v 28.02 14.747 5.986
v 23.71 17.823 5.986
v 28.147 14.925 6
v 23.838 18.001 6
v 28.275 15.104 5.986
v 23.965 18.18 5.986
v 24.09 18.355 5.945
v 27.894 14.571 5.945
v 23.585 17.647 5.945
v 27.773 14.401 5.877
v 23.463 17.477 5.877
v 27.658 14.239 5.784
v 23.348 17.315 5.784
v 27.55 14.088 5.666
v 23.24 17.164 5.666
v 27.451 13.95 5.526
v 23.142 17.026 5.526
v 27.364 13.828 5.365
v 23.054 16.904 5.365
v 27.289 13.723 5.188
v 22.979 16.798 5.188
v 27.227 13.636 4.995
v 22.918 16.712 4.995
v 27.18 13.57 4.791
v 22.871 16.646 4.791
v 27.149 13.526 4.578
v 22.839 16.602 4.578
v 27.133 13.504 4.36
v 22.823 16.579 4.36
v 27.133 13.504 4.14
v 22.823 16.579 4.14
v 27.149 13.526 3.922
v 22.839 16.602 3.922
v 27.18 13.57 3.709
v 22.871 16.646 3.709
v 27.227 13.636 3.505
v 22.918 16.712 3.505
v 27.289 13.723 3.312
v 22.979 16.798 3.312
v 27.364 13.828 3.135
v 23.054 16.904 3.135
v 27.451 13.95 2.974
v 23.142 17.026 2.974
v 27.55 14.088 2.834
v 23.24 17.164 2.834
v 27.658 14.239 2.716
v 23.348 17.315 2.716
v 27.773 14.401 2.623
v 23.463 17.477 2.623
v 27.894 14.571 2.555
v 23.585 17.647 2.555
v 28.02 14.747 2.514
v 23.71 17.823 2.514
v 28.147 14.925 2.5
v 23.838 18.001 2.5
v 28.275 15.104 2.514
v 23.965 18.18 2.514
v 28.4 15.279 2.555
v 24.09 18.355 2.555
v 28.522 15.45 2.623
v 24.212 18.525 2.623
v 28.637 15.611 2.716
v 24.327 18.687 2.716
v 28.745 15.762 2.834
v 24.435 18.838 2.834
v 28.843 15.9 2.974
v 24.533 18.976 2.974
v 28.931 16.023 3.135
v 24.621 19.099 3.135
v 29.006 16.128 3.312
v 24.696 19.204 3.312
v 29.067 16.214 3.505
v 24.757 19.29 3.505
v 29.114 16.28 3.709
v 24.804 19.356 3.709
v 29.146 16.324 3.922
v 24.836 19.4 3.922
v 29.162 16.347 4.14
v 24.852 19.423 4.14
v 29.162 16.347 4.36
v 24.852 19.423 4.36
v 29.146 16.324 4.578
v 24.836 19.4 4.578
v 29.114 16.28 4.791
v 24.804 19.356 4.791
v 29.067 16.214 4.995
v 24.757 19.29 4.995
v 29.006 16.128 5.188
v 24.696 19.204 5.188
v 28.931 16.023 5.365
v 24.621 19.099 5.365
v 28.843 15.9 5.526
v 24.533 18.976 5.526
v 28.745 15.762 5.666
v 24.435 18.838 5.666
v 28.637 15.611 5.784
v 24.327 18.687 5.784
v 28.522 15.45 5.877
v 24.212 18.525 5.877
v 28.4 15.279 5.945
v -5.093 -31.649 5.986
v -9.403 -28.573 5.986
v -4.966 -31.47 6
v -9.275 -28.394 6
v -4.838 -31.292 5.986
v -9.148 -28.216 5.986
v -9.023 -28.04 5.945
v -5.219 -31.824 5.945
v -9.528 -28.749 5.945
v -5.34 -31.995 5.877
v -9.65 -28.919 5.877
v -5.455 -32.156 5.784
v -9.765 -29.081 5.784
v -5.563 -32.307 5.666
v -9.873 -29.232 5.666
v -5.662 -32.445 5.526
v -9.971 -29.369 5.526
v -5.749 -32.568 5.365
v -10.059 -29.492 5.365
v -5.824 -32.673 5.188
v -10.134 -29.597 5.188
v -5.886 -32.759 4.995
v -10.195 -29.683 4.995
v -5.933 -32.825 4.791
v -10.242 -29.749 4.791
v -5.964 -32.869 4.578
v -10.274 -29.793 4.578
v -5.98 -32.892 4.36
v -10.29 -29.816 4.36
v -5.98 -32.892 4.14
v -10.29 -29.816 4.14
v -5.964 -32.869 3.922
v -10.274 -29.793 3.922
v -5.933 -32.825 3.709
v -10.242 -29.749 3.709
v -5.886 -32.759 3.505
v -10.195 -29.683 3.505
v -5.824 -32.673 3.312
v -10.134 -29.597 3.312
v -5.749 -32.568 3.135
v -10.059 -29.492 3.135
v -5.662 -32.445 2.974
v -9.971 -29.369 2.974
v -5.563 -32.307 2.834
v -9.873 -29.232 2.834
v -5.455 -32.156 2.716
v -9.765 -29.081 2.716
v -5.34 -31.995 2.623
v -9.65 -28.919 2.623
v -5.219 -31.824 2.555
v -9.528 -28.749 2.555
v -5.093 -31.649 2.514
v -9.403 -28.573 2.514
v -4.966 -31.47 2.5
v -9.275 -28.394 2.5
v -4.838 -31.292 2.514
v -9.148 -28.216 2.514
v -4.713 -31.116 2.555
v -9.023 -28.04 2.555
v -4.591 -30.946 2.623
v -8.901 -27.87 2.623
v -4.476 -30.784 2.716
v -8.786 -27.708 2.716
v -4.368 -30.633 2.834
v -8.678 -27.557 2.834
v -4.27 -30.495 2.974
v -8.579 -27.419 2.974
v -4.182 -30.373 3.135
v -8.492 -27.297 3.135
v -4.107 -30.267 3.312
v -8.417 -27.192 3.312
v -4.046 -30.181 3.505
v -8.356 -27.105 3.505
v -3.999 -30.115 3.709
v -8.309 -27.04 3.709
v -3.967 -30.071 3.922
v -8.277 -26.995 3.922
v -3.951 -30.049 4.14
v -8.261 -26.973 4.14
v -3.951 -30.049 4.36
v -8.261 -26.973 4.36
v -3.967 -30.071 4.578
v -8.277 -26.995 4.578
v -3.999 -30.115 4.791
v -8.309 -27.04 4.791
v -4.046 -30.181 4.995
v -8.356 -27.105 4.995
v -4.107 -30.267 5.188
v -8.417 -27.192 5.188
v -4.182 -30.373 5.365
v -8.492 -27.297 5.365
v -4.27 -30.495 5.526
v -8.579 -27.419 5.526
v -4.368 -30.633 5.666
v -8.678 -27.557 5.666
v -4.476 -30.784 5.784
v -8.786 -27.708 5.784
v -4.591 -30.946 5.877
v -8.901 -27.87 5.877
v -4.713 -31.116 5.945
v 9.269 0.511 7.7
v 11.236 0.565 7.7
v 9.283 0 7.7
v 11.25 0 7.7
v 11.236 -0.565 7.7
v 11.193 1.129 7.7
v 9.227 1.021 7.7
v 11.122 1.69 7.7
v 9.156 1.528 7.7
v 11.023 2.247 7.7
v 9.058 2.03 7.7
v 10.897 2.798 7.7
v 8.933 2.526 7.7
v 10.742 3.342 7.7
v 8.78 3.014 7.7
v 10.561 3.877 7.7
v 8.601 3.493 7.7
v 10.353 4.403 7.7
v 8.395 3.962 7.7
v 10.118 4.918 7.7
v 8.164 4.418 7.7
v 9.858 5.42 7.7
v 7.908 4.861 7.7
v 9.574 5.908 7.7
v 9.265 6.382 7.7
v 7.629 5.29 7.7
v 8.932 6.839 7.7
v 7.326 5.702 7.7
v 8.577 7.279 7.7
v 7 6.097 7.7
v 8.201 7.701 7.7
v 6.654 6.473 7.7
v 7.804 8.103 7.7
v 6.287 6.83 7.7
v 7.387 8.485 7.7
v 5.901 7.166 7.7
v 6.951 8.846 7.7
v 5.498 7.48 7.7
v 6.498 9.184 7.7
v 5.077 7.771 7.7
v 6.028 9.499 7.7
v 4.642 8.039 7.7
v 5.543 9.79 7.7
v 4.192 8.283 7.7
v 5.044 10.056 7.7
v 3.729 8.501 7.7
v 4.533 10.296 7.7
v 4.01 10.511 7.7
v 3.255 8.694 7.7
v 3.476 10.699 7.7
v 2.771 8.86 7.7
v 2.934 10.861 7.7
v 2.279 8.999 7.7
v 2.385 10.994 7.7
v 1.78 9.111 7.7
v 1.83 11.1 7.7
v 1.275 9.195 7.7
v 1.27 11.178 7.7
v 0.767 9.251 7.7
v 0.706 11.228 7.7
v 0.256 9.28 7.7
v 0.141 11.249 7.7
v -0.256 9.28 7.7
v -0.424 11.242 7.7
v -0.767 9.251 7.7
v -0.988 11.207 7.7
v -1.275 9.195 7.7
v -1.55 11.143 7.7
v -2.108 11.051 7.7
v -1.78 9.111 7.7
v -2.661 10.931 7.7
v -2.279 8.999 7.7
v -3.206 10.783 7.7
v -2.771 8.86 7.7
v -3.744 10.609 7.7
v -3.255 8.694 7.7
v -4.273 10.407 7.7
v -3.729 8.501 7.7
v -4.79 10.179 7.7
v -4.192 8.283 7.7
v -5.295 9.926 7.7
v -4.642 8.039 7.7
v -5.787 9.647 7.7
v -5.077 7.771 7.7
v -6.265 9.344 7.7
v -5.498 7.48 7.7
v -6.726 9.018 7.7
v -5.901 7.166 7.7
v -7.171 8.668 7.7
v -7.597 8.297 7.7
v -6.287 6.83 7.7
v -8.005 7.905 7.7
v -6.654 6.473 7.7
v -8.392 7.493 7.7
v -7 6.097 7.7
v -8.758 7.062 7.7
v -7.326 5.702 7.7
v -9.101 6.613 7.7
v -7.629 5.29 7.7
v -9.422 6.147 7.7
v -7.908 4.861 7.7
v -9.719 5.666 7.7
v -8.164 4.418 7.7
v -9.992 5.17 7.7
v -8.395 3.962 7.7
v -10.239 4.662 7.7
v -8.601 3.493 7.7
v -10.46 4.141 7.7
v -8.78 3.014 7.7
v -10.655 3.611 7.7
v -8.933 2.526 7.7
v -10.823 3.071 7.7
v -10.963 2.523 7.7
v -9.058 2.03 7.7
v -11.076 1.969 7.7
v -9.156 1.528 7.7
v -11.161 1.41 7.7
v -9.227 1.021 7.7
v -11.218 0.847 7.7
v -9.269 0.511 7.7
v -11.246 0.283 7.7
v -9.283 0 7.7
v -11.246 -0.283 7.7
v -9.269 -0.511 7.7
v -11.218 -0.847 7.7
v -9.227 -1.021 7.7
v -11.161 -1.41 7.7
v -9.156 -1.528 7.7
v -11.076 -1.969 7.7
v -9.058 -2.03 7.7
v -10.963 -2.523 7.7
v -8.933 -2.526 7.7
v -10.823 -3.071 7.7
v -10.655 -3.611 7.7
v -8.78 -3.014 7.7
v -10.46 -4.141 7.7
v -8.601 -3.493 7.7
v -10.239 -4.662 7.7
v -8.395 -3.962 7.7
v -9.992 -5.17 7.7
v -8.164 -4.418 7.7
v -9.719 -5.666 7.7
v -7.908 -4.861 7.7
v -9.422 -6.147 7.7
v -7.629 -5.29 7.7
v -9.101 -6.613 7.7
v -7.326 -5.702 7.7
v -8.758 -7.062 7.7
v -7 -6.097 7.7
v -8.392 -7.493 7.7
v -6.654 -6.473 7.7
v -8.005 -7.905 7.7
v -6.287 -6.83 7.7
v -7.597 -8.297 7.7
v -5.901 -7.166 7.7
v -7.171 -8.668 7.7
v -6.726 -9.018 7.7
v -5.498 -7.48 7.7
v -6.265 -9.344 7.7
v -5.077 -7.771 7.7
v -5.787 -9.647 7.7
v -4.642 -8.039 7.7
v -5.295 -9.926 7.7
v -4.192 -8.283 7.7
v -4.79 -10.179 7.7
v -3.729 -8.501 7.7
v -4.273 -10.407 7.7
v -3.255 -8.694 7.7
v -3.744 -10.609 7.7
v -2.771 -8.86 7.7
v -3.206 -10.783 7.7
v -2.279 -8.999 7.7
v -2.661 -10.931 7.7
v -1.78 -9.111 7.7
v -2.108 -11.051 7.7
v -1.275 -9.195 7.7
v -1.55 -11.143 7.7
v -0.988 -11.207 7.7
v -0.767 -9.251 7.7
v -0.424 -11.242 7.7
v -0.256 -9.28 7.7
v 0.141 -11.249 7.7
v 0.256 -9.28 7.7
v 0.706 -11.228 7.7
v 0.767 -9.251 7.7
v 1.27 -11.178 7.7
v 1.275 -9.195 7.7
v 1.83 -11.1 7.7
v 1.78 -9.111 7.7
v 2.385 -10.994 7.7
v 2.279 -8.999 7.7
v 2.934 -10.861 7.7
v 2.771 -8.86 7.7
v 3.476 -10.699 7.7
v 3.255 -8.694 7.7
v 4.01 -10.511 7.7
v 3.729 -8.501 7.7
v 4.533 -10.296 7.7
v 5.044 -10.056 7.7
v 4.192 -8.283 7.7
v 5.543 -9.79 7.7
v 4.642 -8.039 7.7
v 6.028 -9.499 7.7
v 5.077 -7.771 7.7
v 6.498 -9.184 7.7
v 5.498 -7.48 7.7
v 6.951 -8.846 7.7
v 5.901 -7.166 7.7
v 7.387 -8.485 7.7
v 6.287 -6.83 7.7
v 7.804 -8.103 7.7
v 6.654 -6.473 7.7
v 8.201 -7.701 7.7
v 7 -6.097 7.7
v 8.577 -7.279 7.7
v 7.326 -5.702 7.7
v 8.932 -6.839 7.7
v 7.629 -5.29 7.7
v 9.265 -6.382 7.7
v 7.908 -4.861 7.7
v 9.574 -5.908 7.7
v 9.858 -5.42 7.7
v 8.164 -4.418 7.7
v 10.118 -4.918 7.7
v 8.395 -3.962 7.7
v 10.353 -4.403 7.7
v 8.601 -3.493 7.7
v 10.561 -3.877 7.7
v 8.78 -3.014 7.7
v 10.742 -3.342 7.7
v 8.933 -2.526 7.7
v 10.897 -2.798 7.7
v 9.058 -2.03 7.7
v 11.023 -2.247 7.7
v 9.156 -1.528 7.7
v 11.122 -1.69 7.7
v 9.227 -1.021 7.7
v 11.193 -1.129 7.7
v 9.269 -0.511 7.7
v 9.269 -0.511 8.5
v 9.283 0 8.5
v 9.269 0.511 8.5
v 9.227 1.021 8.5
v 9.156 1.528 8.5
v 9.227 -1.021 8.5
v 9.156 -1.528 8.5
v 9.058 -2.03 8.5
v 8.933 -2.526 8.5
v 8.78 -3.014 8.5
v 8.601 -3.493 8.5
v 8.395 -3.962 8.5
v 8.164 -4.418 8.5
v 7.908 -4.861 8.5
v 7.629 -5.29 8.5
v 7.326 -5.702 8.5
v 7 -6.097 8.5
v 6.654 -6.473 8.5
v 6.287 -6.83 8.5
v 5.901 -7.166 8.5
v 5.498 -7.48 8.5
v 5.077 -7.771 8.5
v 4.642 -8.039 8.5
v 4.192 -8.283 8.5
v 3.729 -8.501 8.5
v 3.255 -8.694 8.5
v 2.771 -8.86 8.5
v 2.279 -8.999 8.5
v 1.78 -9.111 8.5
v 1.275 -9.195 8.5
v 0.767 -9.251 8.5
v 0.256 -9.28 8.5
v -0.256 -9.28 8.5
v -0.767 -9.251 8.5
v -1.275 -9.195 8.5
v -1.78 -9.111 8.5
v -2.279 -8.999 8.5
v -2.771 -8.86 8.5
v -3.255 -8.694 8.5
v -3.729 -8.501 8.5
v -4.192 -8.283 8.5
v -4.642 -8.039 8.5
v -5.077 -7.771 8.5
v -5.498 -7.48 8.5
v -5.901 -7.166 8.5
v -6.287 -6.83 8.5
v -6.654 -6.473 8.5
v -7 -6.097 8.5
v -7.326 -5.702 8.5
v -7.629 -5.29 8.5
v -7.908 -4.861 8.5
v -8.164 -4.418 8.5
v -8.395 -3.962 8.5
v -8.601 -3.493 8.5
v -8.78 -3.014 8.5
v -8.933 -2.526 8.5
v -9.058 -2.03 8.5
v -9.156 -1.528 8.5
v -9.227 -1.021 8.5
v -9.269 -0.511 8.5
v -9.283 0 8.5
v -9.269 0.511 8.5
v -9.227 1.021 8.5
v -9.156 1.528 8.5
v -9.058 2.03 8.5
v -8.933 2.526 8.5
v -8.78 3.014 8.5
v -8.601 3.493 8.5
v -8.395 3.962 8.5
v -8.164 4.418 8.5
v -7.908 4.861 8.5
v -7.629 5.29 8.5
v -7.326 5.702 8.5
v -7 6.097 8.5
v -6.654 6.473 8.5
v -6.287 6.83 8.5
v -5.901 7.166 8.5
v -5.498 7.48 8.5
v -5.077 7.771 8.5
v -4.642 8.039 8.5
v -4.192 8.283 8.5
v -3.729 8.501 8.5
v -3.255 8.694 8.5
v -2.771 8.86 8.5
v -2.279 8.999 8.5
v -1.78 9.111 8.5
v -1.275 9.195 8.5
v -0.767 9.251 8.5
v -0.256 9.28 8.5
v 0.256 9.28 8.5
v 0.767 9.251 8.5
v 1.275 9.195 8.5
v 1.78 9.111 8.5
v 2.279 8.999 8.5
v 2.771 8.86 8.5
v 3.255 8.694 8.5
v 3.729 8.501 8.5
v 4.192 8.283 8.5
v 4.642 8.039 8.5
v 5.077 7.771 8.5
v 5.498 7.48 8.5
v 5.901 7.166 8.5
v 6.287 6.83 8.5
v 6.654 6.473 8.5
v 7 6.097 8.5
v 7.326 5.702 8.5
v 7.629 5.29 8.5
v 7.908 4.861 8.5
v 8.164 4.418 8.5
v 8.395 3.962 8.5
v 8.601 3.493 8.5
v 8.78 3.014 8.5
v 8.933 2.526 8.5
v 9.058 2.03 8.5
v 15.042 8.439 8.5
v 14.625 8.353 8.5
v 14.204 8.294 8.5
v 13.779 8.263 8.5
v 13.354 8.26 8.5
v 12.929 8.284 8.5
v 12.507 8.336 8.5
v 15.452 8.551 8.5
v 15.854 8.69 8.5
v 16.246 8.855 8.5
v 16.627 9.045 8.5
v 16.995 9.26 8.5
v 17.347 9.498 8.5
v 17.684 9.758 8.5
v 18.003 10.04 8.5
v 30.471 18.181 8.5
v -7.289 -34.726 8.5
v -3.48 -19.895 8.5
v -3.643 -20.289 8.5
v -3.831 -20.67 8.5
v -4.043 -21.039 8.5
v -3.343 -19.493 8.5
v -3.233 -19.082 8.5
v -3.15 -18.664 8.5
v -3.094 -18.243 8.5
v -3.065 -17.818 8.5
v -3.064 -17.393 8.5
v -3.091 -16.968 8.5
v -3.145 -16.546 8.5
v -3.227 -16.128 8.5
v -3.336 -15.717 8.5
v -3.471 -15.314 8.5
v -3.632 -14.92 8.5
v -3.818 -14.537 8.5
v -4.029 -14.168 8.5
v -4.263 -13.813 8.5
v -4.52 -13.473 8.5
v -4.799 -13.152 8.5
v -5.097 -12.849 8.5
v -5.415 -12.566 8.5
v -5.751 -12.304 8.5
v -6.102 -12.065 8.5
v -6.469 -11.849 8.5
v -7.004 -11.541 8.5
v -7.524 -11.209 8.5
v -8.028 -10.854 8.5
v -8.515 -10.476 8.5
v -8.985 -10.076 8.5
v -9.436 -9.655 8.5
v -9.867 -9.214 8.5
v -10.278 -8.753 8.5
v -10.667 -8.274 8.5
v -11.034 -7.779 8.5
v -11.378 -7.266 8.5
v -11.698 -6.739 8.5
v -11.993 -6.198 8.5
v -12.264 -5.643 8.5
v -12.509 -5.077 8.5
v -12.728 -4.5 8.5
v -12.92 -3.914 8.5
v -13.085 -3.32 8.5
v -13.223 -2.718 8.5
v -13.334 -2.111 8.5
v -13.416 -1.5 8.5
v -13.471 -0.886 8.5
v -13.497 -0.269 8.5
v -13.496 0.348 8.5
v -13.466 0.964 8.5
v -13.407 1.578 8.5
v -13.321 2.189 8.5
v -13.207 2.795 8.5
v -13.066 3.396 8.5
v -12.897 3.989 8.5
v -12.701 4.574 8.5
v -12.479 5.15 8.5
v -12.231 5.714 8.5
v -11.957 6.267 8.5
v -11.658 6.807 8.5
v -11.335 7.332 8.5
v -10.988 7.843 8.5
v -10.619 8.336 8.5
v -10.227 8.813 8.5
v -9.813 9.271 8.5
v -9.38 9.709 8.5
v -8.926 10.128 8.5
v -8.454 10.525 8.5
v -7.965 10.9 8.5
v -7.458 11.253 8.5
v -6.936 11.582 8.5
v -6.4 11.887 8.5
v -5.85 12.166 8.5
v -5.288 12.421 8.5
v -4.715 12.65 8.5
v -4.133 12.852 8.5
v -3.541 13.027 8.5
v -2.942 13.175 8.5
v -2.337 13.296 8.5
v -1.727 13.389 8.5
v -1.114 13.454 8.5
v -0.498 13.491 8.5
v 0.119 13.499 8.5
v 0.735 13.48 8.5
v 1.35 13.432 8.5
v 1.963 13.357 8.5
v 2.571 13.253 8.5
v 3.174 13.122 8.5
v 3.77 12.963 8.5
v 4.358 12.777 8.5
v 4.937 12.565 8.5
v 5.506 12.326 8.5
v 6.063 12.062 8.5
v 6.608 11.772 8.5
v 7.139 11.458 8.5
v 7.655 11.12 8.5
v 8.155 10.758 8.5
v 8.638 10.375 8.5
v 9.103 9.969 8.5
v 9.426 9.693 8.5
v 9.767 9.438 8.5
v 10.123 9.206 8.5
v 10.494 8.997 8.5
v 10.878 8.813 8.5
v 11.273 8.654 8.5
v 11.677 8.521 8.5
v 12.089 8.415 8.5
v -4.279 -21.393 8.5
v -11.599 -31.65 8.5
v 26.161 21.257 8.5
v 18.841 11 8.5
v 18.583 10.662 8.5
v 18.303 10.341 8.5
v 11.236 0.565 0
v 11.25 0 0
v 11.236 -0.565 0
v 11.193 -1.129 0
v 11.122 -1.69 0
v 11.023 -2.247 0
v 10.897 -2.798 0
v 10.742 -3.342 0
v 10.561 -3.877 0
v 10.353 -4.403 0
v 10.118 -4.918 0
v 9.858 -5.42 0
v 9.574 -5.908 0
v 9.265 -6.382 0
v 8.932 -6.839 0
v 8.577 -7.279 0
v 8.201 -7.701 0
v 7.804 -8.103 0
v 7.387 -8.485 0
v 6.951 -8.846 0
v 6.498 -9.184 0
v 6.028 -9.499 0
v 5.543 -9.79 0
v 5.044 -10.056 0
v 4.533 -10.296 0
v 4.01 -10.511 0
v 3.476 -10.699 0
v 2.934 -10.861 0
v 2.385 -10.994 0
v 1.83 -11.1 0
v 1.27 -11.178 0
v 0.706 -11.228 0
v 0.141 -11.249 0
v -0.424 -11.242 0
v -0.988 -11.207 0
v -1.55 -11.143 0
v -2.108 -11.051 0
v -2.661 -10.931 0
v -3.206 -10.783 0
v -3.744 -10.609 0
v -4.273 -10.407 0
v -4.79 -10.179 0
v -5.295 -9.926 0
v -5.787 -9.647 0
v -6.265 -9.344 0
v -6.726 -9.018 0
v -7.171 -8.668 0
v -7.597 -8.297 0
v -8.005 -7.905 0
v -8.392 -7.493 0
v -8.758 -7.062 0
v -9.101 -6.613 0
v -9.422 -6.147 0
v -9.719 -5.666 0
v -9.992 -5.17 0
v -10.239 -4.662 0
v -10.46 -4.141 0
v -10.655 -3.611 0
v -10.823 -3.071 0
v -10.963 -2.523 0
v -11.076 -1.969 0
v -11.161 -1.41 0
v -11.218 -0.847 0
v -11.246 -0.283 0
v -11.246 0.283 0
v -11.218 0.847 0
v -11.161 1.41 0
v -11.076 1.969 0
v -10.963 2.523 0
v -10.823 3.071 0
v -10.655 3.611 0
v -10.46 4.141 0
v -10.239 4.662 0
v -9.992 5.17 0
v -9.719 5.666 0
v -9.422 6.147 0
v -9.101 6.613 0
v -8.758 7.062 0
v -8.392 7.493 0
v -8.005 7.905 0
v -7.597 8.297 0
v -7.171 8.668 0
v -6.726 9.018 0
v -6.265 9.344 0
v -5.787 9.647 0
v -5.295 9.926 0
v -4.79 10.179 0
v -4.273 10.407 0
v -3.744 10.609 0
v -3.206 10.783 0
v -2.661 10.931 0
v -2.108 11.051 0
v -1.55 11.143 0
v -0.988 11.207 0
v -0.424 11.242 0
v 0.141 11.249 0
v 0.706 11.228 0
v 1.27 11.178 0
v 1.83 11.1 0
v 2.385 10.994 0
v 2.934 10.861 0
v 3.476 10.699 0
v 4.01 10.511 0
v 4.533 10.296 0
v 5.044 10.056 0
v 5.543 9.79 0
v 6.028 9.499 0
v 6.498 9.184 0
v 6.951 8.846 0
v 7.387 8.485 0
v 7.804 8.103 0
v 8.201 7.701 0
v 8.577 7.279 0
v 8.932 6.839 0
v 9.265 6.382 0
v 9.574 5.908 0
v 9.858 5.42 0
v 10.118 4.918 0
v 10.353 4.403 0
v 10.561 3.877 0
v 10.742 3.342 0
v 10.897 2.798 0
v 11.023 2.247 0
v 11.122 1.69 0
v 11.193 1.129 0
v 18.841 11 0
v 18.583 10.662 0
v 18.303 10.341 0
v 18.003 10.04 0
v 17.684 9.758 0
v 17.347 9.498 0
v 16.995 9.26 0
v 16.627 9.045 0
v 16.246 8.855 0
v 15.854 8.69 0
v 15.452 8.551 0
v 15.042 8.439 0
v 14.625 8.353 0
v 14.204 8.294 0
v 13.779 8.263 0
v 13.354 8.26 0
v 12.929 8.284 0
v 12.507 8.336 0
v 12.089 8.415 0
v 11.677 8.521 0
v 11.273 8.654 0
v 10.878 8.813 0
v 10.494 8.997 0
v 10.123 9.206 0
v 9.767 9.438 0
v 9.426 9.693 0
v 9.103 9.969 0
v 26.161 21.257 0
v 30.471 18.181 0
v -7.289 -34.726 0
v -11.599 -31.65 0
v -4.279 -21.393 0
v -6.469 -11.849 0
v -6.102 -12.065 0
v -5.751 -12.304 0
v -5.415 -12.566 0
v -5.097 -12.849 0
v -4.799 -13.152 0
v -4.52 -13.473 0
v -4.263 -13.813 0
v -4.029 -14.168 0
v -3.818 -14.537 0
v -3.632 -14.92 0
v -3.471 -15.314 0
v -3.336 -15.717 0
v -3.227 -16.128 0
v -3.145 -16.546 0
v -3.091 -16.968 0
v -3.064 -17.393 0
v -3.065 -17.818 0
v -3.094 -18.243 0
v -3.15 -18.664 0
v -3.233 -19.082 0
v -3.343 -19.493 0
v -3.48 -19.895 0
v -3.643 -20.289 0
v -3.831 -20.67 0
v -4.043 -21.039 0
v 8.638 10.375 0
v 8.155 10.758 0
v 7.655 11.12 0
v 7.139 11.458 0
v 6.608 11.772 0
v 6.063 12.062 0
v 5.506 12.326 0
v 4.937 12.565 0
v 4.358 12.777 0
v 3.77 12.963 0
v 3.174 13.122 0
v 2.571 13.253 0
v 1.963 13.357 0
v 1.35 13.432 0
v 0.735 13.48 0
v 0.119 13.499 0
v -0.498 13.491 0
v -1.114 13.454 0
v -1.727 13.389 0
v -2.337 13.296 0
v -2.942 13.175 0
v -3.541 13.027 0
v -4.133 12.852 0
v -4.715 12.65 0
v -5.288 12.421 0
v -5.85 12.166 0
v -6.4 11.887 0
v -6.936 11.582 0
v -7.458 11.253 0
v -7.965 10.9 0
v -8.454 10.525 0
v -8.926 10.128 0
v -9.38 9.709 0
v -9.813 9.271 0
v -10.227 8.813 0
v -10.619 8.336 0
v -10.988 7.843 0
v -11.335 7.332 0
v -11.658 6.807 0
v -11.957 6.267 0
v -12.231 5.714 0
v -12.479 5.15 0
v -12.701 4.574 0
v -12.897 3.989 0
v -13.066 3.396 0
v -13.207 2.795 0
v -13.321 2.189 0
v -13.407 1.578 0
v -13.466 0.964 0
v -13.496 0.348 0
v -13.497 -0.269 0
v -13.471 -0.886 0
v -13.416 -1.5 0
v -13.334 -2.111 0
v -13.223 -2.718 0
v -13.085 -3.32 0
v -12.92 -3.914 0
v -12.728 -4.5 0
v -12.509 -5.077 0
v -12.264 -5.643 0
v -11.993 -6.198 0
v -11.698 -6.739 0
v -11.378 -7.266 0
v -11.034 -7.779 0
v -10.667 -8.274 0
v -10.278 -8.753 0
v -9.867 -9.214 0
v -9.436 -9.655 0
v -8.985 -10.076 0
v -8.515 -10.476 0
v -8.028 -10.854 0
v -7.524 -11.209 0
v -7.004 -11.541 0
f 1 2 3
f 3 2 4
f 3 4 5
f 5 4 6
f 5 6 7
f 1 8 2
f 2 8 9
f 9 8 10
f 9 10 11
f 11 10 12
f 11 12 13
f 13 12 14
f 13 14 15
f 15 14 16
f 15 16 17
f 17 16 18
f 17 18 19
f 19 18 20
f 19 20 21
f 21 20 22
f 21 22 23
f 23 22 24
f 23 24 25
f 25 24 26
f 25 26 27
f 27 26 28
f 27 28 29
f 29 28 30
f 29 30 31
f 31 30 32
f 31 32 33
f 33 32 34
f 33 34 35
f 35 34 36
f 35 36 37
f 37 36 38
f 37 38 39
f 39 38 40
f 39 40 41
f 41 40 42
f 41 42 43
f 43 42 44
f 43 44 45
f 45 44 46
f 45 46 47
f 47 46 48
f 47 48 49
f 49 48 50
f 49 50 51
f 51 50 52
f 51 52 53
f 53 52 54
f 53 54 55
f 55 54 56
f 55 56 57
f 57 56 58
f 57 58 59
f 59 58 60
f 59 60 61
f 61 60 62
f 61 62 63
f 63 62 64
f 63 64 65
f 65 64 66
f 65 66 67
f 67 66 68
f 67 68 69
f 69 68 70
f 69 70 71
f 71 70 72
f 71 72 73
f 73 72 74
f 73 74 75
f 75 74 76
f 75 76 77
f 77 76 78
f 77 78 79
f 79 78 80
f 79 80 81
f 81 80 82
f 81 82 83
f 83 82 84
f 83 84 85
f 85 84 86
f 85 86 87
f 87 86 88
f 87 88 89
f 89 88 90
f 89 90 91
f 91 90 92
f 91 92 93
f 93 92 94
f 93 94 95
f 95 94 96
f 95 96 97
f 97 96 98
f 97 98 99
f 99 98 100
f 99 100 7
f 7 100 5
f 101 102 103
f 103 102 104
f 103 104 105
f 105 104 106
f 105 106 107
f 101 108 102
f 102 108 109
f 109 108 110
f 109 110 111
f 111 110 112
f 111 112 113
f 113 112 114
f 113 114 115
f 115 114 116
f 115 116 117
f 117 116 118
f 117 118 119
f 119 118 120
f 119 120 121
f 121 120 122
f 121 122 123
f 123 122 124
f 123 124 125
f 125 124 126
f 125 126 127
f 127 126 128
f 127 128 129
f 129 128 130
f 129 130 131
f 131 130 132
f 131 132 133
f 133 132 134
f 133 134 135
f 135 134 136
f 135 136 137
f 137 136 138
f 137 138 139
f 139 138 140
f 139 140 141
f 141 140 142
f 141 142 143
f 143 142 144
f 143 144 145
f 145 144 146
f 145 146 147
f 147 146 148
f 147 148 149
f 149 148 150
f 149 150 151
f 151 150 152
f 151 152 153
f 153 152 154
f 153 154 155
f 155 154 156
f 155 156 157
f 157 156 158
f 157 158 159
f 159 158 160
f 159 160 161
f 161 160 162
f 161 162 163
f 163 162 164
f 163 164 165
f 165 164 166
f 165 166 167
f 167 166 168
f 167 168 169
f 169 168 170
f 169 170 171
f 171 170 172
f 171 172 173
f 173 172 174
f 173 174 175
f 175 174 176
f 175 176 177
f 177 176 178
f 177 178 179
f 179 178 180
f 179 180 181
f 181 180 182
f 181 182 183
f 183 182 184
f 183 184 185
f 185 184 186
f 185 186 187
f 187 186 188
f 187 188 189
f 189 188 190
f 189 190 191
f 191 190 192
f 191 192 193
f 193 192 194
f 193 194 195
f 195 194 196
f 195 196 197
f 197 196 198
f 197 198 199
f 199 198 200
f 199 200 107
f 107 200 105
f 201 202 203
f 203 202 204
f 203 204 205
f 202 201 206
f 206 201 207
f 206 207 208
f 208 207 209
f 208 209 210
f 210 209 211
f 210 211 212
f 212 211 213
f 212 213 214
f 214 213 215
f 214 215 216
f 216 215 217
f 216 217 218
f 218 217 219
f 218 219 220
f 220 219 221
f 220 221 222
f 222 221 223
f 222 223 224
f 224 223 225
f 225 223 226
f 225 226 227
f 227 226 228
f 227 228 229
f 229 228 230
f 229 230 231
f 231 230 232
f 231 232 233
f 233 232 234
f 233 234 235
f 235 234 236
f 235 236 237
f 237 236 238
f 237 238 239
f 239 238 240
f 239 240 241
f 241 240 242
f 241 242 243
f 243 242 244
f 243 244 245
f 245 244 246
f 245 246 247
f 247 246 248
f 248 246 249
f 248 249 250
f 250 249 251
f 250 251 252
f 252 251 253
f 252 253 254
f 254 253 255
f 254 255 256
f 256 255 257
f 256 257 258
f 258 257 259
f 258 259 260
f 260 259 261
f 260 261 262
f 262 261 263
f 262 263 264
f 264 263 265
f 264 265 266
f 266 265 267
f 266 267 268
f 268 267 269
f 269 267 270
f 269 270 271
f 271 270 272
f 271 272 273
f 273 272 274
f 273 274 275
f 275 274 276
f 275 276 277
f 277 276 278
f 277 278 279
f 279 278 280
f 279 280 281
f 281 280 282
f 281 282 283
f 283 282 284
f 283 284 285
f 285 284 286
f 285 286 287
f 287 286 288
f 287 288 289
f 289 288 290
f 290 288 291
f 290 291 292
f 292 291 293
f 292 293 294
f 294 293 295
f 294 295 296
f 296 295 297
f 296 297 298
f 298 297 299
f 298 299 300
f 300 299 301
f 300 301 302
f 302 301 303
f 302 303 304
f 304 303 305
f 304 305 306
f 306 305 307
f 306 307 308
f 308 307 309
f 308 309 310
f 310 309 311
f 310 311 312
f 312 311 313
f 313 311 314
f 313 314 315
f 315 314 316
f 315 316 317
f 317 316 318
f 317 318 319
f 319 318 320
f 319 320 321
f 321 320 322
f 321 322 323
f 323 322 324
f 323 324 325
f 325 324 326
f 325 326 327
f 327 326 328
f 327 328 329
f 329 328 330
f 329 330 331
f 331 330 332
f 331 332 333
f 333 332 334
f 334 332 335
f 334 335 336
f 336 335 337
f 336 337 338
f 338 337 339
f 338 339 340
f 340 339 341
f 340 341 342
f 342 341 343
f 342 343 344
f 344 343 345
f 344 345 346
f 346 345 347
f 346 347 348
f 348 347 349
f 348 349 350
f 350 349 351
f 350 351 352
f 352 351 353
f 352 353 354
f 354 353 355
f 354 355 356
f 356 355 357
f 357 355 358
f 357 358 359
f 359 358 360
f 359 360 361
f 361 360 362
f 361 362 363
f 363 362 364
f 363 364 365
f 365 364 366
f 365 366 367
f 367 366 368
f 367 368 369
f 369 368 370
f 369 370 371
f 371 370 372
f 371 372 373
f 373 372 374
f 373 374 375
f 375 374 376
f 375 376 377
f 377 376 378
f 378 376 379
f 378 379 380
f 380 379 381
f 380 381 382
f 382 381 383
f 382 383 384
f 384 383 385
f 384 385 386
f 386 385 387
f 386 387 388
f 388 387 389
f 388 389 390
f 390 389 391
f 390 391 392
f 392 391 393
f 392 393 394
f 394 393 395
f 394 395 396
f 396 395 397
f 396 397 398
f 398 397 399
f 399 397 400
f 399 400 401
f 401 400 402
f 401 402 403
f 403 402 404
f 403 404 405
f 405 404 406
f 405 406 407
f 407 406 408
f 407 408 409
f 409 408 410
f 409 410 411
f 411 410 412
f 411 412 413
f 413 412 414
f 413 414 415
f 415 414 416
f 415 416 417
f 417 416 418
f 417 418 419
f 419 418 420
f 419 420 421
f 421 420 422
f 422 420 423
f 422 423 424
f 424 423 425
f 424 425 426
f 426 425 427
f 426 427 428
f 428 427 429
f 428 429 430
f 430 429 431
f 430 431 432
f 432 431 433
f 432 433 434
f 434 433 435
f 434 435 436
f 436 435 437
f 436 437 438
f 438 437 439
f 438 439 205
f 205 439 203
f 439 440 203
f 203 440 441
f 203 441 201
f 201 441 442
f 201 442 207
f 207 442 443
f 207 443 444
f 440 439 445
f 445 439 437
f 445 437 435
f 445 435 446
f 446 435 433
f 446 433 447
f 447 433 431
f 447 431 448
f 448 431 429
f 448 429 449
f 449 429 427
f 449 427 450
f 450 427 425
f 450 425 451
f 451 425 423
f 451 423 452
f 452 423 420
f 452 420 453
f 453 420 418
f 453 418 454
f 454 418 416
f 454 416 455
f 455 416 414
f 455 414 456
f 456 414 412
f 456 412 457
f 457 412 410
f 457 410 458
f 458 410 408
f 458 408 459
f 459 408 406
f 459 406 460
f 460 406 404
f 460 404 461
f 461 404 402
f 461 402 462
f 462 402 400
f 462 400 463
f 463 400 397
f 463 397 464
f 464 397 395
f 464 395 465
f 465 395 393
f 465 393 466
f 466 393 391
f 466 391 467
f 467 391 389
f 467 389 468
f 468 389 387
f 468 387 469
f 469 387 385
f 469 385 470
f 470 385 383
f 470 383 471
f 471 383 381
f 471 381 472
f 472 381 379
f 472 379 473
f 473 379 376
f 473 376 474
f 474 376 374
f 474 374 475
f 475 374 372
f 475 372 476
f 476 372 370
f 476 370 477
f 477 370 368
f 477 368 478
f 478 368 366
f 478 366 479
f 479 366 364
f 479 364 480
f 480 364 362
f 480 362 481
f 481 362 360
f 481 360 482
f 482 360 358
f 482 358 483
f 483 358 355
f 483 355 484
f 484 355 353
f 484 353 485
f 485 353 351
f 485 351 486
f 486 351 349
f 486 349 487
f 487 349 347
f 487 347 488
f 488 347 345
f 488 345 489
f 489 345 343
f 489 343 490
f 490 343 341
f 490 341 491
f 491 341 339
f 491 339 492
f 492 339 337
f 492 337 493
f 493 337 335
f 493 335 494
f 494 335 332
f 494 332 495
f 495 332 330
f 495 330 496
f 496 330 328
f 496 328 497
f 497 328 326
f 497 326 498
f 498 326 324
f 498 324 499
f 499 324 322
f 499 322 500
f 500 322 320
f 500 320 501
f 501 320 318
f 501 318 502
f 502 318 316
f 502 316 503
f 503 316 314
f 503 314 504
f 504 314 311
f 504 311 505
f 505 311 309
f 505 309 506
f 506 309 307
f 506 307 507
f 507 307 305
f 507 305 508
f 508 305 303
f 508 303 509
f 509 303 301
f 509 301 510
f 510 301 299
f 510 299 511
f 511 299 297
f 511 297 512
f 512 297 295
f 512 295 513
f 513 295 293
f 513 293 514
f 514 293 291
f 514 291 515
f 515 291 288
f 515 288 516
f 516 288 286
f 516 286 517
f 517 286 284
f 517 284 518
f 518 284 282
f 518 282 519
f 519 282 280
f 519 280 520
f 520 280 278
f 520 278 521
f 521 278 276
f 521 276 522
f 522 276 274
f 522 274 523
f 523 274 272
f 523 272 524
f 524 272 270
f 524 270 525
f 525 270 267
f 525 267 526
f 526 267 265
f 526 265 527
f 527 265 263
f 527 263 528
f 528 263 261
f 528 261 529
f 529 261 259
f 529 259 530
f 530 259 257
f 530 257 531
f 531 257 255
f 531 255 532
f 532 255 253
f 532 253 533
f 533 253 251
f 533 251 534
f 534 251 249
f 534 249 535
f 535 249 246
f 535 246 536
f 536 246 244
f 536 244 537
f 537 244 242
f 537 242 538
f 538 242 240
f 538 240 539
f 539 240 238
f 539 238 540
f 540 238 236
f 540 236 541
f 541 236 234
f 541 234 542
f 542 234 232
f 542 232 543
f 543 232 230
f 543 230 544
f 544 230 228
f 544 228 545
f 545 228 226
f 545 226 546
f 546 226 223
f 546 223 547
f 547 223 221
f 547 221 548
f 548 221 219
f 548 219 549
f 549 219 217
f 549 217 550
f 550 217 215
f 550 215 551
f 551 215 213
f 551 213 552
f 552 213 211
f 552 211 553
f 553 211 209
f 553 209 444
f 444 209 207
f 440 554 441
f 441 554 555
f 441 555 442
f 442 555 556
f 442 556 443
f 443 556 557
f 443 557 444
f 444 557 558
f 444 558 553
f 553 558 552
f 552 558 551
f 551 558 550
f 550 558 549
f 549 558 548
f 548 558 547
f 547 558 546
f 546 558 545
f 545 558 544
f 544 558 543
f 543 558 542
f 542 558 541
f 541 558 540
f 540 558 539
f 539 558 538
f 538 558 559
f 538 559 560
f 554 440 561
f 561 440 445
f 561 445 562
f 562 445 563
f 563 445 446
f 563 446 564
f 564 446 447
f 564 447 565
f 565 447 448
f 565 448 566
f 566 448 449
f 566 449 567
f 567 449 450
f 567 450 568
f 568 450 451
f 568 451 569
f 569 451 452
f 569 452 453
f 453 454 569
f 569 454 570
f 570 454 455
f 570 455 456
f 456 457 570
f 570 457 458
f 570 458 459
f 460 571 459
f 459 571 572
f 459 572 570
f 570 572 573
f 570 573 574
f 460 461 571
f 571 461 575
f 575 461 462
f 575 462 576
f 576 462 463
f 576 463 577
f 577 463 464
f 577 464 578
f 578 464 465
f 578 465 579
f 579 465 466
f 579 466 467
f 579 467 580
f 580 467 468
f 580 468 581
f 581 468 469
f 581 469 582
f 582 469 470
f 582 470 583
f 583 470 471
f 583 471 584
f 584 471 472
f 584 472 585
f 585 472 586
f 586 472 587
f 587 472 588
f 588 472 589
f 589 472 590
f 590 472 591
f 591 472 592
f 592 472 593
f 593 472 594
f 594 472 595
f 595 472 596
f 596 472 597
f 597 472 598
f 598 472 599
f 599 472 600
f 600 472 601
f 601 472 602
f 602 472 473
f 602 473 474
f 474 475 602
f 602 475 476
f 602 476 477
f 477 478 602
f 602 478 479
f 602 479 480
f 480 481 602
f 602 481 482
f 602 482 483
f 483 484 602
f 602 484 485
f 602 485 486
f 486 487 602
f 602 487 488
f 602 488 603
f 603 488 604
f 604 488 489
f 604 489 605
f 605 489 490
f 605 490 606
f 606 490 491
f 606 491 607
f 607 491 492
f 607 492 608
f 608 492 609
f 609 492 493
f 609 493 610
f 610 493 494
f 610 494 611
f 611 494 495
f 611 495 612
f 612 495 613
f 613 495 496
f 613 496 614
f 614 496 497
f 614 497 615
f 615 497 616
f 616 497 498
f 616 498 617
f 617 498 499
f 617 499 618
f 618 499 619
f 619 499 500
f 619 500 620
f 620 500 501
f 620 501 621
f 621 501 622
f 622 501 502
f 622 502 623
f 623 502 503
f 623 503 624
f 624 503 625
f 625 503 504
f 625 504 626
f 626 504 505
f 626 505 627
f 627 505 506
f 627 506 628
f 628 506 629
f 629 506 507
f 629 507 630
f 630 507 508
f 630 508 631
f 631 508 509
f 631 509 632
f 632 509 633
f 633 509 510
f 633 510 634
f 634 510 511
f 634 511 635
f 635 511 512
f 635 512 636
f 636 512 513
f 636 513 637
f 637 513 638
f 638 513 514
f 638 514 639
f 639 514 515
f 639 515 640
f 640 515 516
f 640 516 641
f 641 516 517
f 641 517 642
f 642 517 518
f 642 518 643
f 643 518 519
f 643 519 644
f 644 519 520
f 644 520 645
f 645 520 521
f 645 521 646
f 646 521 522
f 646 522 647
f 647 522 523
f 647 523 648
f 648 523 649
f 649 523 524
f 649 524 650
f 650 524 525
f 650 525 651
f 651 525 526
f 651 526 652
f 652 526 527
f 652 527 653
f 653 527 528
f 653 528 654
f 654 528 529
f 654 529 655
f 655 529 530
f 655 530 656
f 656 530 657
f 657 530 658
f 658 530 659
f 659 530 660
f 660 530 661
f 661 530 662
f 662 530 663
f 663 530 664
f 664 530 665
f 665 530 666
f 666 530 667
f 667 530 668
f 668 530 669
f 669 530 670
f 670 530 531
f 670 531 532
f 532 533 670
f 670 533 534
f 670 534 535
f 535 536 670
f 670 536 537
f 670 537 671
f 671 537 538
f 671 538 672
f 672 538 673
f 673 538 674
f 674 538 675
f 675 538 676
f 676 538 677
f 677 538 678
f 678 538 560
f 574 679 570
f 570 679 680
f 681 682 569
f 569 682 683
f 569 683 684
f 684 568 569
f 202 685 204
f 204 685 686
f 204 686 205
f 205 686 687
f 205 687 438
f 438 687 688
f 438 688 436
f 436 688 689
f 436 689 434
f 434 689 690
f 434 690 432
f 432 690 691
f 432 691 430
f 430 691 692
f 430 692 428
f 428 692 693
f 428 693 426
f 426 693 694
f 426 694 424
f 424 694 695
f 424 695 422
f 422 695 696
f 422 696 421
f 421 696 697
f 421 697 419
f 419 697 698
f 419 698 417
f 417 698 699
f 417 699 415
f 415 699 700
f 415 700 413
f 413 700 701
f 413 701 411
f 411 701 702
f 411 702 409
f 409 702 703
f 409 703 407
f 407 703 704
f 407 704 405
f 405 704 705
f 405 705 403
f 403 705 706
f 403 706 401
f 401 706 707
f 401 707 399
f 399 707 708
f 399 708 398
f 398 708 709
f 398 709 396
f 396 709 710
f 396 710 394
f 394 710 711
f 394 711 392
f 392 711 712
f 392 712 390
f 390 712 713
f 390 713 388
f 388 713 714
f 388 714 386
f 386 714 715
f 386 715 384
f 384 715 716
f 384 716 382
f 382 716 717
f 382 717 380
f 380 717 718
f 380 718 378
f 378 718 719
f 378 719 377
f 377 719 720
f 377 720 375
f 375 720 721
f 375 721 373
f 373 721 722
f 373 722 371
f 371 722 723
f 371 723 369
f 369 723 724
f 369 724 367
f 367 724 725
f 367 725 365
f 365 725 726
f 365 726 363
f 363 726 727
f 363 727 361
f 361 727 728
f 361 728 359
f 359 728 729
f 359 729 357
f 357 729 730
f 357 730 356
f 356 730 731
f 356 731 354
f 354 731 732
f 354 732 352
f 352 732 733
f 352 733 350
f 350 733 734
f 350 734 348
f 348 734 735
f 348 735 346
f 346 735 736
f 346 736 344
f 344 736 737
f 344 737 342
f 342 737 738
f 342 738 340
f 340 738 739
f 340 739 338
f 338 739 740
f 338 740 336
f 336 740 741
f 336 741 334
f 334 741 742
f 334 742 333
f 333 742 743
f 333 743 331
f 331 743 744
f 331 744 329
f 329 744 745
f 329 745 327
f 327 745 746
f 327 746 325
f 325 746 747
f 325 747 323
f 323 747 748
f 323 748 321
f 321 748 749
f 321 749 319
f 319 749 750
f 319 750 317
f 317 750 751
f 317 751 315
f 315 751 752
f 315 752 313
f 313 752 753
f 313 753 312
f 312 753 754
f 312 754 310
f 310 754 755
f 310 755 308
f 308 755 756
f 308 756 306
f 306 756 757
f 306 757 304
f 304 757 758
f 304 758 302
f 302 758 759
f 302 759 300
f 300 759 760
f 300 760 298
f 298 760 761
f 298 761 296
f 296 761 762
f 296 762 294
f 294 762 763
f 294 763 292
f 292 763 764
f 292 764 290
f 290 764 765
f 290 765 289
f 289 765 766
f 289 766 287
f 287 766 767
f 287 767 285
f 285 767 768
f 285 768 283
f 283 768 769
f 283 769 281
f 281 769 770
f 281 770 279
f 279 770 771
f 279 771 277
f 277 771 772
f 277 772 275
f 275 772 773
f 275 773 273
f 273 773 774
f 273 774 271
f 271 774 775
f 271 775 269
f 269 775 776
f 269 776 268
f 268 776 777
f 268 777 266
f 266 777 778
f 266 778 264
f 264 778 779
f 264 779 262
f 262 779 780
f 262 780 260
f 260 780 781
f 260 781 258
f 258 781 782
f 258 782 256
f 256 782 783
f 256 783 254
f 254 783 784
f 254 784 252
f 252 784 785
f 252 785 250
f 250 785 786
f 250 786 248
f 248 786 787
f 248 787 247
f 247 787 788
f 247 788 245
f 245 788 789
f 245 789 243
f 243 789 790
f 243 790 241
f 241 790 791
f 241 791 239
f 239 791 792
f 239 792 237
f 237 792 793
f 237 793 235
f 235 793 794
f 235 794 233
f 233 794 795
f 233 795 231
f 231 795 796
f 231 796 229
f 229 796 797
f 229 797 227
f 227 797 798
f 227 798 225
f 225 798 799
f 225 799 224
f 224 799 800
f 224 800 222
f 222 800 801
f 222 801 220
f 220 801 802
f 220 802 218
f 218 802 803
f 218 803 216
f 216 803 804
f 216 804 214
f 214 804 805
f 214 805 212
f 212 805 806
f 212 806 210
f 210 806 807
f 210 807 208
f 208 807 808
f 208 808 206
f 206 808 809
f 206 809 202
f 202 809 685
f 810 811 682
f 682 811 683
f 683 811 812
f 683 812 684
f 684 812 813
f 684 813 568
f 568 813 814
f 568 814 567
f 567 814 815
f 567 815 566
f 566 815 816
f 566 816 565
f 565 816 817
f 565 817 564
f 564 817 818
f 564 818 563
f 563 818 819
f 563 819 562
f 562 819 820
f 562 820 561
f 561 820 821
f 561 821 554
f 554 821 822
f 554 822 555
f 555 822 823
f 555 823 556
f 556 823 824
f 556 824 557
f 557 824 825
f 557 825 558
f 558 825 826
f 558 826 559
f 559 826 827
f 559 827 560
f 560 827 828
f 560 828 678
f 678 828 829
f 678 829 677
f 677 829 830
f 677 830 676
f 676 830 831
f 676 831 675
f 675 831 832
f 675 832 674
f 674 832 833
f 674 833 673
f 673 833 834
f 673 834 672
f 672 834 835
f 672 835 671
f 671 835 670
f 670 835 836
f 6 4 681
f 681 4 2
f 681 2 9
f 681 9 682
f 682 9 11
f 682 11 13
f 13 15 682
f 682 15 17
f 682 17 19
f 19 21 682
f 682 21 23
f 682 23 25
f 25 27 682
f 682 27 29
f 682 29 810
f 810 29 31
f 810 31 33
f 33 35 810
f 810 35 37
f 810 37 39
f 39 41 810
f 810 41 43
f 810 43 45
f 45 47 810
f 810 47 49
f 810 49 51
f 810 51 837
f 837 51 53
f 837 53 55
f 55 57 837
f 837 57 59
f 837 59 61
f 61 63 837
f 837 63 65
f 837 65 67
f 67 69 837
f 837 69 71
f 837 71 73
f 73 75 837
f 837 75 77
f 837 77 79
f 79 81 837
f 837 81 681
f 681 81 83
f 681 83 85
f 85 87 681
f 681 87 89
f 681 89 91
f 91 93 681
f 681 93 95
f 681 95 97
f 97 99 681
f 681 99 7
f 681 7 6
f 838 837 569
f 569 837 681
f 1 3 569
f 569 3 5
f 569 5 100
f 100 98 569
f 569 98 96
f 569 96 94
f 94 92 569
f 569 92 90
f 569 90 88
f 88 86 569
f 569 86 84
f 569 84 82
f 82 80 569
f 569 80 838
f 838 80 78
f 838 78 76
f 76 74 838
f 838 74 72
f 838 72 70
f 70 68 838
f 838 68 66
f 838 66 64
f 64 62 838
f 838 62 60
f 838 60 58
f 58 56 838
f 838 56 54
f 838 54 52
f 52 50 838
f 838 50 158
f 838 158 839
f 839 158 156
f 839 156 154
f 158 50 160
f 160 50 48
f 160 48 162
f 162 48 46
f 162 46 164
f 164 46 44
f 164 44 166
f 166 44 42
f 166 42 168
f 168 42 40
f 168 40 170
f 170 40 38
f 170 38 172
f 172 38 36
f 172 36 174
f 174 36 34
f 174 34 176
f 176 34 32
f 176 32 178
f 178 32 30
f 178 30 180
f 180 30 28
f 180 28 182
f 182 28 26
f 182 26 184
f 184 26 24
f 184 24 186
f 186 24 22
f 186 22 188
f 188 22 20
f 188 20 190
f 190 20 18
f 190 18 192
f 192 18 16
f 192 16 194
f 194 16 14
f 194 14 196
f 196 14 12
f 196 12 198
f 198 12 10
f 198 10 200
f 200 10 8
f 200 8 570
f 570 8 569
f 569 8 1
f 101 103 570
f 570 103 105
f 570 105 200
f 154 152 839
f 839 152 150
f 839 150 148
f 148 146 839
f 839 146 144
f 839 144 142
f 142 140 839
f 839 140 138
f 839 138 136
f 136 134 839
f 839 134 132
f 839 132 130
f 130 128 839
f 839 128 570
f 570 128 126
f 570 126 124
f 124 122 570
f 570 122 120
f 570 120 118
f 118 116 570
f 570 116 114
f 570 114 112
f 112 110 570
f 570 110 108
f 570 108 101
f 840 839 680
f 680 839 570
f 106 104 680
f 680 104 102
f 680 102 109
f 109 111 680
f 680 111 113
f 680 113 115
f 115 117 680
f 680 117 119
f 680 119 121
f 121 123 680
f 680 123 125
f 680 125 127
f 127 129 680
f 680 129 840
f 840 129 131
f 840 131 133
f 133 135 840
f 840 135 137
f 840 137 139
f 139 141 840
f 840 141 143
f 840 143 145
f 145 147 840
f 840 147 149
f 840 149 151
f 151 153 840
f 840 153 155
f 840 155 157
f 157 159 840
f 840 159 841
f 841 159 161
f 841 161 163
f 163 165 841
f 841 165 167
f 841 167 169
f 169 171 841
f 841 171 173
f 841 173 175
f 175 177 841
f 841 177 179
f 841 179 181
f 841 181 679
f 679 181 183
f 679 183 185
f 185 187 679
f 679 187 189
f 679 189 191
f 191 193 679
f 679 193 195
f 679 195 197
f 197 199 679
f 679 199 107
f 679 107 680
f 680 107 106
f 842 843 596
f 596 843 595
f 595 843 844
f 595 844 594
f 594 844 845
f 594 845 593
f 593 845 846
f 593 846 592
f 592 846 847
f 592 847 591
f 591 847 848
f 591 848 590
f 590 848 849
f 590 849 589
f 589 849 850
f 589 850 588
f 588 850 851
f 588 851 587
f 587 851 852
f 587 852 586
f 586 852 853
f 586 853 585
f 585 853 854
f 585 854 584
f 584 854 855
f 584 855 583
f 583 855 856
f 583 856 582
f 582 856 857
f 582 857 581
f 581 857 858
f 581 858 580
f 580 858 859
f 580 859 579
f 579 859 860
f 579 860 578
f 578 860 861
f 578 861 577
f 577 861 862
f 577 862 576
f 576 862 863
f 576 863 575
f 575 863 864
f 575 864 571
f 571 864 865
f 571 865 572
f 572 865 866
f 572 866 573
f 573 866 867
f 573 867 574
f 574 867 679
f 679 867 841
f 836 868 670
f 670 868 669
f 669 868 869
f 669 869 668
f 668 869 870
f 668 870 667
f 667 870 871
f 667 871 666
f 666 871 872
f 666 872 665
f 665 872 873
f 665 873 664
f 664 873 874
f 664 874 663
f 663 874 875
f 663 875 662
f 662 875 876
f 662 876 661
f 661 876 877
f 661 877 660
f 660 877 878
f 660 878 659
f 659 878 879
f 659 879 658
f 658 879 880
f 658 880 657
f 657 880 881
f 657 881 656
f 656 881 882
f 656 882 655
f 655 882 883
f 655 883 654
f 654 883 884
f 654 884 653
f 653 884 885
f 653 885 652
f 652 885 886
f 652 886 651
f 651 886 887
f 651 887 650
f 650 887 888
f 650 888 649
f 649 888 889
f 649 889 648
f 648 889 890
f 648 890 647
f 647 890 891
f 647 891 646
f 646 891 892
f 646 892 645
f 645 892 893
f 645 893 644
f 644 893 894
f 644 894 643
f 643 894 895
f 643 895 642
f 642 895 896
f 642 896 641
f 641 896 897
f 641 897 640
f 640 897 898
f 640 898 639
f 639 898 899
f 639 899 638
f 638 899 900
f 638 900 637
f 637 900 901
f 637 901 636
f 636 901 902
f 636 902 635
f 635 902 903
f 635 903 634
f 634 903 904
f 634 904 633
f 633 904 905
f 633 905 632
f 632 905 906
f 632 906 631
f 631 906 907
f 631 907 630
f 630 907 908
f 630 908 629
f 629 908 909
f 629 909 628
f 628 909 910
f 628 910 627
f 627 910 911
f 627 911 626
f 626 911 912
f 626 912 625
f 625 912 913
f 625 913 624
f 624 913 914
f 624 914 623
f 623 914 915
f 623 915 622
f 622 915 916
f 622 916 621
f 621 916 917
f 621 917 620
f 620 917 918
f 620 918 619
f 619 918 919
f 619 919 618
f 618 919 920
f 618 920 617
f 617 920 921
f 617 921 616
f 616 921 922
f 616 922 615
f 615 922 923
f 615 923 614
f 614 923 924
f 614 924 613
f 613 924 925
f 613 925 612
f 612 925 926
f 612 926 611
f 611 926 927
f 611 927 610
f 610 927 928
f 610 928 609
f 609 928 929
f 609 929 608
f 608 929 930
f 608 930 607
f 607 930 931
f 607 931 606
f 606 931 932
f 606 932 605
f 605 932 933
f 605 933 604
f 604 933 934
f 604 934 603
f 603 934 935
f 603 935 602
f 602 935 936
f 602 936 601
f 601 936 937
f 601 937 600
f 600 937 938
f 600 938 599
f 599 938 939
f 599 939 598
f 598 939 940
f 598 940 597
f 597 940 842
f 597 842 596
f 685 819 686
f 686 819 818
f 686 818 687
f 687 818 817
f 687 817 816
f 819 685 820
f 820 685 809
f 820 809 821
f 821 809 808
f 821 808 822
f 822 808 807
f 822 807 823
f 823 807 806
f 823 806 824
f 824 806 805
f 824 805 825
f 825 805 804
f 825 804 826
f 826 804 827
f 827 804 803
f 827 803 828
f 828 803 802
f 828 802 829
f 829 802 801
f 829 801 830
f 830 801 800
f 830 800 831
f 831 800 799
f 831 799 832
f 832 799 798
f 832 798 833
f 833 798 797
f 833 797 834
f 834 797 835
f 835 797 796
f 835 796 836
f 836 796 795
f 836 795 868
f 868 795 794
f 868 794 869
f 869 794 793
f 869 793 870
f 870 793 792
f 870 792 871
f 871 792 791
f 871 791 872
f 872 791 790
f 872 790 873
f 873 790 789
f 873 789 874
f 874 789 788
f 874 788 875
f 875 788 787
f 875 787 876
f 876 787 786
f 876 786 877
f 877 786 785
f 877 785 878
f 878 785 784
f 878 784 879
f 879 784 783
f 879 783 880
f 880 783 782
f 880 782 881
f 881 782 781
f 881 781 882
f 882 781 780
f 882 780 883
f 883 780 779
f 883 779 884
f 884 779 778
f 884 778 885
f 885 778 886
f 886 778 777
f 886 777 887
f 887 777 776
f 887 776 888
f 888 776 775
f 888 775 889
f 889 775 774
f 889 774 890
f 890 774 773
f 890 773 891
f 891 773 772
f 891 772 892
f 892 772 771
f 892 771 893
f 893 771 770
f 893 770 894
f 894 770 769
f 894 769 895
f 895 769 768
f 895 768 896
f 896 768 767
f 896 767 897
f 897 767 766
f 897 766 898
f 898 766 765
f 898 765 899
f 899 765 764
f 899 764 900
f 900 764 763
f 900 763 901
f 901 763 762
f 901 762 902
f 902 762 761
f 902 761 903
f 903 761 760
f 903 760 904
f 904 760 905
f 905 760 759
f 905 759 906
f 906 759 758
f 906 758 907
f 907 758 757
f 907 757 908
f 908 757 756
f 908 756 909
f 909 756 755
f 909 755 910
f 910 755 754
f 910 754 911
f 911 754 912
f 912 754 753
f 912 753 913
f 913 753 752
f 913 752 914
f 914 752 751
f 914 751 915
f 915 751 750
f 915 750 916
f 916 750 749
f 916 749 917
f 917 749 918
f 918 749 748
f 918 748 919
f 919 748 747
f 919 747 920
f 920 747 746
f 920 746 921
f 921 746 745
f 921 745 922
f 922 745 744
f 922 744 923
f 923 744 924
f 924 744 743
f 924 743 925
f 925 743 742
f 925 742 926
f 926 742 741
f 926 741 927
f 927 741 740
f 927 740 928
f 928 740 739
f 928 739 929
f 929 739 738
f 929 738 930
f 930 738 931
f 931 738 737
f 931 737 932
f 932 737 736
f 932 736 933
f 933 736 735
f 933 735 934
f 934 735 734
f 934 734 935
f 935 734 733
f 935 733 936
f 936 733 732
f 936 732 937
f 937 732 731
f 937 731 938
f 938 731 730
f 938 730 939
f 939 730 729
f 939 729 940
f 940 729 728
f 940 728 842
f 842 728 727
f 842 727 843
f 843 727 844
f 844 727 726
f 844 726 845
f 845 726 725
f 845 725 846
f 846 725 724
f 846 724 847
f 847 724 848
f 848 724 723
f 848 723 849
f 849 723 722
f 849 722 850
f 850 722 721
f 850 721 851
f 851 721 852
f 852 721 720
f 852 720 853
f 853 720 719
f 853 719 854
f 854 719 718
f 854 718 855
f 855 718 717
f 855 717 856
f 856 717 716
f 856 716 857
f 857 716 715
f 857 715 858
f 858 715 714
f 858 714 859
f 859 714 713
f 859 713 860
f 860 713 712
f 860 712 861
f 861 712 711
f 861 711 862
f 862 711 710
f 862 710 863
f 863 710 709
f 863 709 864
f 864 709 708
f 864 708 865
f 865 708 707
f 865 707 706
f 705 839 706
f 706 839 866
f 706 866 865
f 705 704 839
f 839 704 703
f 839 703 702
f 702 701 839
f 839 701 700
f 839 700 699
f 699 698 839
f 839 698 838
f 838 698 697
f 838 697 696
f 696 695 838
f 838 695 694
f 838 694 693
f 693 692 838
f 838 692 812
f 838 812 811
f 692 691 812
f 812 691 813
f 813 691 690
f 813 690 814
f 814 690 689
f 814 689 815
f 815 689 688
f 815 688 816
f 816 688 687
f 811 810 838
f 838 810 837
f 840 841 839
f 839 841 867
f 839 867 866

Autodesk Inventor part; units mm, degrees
ref_plane "YZ Plane" through (0, 0, 0) normal (1, 0, 0) x (0, 1, 0)
ref_plane "XZ Plane" through (0, 0, 0) normal (0, 1, 0) x (-1, 0, 0)
ref_plane "XY Plane" through (0, 0, 0) normal (0, 0, 1) x (1, 0, 0)
sketch "Sketch1" plane through (0, 0, 0) normal (0, 0, 1) x (1, 0, 0)
  circle A0 centre (0, 0) radius 11 projected
  arc A1 (9.103, 9.9692) -> (-6.4691, -11.8491) centre (0, 0) ccw
  line L0 (122.2578, 146.7857) -> (-99.0763, -163.3307) projected
  arc A2 (9.103, 9.9692) -> (18.8408, 11) centre (13.515, 14.8011) ccw
  line L1 (18.8408, 11) -> (26.1613, 21.2569)
  line L2 (26.1613, 21.2569) -> (30.471, 18.181)
  line L3 (0, 0) -> (9.5455, -6.8127)
  line L4 (-7.2894, -34.726) -> (30.471, 18.181)
  arc A3 (-4.2786, -21.3932) -> (-6.4691, -11.8491) centre (-9.6045, -17.5921) ccw
  line L5 (-4.2786, -21.3932) -> (-11.5991, -31.6501)
  line L6 (-11.5991, -31.6501) -> (-7.2894, -34.726)
  line L7 (-7.2894, -34.726) -> (30.471, 18.181)
  circle A4 centre (0, 0) radius 11.25
  point P0 (0, 0)
  point P1 (-99.0763, -163.3307)
  point P2 (122.2578, 146.7857)
  dimension "d0" = 2.5
  dimension "d12" = 65
  dimension "d15" = 22.5
extrude "Extrusion1" add sketch "Sketch1" along normal blind 8.5 contours A2 L1 L2 L0 L6 L5 A3 A1
sketch "Sketch2" plane through (0, 0, 8.5) normal (0, 0, 1) x (1, 0, 0)
  circle A0 centre (0, 0) radius 9.2831
  circle A1 centre (0, 0) radius 10.96 projected
  circle A2 centre (0, 0) radius 13.5
  dimension "d3" = 18.5661
extrude "Extrusion2" add sketch "Sketch2" against normal blind 0.8 contours A1 | A2
sketch "Sketch3" plane through (-11.5991, -31.6501, 0) normal (-0.8139539, 0.5809295, 0) x (0, 0, 1)
  line L0 (0, 12.6013) -> (0, 0) projected
  line L1 (0, 0) -> (8.5, 0) projected
  line L2 (8.5, 12.6013) -> (8.5, 0) projected
  line L3 (0, 12.6013) -> (8.5, 12.6013) projected
  line L4 (0, 65) -> (0, 52.3987) projected
  line L5 (0, 52.3987) -> (8.5, 52.3987) projected
  line L6 (8.5, 65) -> (8.5, 52.3987) projected
  line L7 (0, 65) -> (8.5, 65) projected
  line L8 (3.4344, 32.2582) -> (4.7482, 32.2582)
  circle A0 centre (4.25, 4) radius 1.75
  circle A1 centre (4.25, 61) radius 1.75
  point P0 (0, 32.5)
  dimension "d10" = 3.5
  dimension "d11" = 3.5
  dimension "d13" = 4
  dimension "d14" = 4
extrude "Extrusion3" cut sketch "Sketch3" against normal up to surface (5.2948 mm away) contours A0 | A1
properties part number "bearing block"
